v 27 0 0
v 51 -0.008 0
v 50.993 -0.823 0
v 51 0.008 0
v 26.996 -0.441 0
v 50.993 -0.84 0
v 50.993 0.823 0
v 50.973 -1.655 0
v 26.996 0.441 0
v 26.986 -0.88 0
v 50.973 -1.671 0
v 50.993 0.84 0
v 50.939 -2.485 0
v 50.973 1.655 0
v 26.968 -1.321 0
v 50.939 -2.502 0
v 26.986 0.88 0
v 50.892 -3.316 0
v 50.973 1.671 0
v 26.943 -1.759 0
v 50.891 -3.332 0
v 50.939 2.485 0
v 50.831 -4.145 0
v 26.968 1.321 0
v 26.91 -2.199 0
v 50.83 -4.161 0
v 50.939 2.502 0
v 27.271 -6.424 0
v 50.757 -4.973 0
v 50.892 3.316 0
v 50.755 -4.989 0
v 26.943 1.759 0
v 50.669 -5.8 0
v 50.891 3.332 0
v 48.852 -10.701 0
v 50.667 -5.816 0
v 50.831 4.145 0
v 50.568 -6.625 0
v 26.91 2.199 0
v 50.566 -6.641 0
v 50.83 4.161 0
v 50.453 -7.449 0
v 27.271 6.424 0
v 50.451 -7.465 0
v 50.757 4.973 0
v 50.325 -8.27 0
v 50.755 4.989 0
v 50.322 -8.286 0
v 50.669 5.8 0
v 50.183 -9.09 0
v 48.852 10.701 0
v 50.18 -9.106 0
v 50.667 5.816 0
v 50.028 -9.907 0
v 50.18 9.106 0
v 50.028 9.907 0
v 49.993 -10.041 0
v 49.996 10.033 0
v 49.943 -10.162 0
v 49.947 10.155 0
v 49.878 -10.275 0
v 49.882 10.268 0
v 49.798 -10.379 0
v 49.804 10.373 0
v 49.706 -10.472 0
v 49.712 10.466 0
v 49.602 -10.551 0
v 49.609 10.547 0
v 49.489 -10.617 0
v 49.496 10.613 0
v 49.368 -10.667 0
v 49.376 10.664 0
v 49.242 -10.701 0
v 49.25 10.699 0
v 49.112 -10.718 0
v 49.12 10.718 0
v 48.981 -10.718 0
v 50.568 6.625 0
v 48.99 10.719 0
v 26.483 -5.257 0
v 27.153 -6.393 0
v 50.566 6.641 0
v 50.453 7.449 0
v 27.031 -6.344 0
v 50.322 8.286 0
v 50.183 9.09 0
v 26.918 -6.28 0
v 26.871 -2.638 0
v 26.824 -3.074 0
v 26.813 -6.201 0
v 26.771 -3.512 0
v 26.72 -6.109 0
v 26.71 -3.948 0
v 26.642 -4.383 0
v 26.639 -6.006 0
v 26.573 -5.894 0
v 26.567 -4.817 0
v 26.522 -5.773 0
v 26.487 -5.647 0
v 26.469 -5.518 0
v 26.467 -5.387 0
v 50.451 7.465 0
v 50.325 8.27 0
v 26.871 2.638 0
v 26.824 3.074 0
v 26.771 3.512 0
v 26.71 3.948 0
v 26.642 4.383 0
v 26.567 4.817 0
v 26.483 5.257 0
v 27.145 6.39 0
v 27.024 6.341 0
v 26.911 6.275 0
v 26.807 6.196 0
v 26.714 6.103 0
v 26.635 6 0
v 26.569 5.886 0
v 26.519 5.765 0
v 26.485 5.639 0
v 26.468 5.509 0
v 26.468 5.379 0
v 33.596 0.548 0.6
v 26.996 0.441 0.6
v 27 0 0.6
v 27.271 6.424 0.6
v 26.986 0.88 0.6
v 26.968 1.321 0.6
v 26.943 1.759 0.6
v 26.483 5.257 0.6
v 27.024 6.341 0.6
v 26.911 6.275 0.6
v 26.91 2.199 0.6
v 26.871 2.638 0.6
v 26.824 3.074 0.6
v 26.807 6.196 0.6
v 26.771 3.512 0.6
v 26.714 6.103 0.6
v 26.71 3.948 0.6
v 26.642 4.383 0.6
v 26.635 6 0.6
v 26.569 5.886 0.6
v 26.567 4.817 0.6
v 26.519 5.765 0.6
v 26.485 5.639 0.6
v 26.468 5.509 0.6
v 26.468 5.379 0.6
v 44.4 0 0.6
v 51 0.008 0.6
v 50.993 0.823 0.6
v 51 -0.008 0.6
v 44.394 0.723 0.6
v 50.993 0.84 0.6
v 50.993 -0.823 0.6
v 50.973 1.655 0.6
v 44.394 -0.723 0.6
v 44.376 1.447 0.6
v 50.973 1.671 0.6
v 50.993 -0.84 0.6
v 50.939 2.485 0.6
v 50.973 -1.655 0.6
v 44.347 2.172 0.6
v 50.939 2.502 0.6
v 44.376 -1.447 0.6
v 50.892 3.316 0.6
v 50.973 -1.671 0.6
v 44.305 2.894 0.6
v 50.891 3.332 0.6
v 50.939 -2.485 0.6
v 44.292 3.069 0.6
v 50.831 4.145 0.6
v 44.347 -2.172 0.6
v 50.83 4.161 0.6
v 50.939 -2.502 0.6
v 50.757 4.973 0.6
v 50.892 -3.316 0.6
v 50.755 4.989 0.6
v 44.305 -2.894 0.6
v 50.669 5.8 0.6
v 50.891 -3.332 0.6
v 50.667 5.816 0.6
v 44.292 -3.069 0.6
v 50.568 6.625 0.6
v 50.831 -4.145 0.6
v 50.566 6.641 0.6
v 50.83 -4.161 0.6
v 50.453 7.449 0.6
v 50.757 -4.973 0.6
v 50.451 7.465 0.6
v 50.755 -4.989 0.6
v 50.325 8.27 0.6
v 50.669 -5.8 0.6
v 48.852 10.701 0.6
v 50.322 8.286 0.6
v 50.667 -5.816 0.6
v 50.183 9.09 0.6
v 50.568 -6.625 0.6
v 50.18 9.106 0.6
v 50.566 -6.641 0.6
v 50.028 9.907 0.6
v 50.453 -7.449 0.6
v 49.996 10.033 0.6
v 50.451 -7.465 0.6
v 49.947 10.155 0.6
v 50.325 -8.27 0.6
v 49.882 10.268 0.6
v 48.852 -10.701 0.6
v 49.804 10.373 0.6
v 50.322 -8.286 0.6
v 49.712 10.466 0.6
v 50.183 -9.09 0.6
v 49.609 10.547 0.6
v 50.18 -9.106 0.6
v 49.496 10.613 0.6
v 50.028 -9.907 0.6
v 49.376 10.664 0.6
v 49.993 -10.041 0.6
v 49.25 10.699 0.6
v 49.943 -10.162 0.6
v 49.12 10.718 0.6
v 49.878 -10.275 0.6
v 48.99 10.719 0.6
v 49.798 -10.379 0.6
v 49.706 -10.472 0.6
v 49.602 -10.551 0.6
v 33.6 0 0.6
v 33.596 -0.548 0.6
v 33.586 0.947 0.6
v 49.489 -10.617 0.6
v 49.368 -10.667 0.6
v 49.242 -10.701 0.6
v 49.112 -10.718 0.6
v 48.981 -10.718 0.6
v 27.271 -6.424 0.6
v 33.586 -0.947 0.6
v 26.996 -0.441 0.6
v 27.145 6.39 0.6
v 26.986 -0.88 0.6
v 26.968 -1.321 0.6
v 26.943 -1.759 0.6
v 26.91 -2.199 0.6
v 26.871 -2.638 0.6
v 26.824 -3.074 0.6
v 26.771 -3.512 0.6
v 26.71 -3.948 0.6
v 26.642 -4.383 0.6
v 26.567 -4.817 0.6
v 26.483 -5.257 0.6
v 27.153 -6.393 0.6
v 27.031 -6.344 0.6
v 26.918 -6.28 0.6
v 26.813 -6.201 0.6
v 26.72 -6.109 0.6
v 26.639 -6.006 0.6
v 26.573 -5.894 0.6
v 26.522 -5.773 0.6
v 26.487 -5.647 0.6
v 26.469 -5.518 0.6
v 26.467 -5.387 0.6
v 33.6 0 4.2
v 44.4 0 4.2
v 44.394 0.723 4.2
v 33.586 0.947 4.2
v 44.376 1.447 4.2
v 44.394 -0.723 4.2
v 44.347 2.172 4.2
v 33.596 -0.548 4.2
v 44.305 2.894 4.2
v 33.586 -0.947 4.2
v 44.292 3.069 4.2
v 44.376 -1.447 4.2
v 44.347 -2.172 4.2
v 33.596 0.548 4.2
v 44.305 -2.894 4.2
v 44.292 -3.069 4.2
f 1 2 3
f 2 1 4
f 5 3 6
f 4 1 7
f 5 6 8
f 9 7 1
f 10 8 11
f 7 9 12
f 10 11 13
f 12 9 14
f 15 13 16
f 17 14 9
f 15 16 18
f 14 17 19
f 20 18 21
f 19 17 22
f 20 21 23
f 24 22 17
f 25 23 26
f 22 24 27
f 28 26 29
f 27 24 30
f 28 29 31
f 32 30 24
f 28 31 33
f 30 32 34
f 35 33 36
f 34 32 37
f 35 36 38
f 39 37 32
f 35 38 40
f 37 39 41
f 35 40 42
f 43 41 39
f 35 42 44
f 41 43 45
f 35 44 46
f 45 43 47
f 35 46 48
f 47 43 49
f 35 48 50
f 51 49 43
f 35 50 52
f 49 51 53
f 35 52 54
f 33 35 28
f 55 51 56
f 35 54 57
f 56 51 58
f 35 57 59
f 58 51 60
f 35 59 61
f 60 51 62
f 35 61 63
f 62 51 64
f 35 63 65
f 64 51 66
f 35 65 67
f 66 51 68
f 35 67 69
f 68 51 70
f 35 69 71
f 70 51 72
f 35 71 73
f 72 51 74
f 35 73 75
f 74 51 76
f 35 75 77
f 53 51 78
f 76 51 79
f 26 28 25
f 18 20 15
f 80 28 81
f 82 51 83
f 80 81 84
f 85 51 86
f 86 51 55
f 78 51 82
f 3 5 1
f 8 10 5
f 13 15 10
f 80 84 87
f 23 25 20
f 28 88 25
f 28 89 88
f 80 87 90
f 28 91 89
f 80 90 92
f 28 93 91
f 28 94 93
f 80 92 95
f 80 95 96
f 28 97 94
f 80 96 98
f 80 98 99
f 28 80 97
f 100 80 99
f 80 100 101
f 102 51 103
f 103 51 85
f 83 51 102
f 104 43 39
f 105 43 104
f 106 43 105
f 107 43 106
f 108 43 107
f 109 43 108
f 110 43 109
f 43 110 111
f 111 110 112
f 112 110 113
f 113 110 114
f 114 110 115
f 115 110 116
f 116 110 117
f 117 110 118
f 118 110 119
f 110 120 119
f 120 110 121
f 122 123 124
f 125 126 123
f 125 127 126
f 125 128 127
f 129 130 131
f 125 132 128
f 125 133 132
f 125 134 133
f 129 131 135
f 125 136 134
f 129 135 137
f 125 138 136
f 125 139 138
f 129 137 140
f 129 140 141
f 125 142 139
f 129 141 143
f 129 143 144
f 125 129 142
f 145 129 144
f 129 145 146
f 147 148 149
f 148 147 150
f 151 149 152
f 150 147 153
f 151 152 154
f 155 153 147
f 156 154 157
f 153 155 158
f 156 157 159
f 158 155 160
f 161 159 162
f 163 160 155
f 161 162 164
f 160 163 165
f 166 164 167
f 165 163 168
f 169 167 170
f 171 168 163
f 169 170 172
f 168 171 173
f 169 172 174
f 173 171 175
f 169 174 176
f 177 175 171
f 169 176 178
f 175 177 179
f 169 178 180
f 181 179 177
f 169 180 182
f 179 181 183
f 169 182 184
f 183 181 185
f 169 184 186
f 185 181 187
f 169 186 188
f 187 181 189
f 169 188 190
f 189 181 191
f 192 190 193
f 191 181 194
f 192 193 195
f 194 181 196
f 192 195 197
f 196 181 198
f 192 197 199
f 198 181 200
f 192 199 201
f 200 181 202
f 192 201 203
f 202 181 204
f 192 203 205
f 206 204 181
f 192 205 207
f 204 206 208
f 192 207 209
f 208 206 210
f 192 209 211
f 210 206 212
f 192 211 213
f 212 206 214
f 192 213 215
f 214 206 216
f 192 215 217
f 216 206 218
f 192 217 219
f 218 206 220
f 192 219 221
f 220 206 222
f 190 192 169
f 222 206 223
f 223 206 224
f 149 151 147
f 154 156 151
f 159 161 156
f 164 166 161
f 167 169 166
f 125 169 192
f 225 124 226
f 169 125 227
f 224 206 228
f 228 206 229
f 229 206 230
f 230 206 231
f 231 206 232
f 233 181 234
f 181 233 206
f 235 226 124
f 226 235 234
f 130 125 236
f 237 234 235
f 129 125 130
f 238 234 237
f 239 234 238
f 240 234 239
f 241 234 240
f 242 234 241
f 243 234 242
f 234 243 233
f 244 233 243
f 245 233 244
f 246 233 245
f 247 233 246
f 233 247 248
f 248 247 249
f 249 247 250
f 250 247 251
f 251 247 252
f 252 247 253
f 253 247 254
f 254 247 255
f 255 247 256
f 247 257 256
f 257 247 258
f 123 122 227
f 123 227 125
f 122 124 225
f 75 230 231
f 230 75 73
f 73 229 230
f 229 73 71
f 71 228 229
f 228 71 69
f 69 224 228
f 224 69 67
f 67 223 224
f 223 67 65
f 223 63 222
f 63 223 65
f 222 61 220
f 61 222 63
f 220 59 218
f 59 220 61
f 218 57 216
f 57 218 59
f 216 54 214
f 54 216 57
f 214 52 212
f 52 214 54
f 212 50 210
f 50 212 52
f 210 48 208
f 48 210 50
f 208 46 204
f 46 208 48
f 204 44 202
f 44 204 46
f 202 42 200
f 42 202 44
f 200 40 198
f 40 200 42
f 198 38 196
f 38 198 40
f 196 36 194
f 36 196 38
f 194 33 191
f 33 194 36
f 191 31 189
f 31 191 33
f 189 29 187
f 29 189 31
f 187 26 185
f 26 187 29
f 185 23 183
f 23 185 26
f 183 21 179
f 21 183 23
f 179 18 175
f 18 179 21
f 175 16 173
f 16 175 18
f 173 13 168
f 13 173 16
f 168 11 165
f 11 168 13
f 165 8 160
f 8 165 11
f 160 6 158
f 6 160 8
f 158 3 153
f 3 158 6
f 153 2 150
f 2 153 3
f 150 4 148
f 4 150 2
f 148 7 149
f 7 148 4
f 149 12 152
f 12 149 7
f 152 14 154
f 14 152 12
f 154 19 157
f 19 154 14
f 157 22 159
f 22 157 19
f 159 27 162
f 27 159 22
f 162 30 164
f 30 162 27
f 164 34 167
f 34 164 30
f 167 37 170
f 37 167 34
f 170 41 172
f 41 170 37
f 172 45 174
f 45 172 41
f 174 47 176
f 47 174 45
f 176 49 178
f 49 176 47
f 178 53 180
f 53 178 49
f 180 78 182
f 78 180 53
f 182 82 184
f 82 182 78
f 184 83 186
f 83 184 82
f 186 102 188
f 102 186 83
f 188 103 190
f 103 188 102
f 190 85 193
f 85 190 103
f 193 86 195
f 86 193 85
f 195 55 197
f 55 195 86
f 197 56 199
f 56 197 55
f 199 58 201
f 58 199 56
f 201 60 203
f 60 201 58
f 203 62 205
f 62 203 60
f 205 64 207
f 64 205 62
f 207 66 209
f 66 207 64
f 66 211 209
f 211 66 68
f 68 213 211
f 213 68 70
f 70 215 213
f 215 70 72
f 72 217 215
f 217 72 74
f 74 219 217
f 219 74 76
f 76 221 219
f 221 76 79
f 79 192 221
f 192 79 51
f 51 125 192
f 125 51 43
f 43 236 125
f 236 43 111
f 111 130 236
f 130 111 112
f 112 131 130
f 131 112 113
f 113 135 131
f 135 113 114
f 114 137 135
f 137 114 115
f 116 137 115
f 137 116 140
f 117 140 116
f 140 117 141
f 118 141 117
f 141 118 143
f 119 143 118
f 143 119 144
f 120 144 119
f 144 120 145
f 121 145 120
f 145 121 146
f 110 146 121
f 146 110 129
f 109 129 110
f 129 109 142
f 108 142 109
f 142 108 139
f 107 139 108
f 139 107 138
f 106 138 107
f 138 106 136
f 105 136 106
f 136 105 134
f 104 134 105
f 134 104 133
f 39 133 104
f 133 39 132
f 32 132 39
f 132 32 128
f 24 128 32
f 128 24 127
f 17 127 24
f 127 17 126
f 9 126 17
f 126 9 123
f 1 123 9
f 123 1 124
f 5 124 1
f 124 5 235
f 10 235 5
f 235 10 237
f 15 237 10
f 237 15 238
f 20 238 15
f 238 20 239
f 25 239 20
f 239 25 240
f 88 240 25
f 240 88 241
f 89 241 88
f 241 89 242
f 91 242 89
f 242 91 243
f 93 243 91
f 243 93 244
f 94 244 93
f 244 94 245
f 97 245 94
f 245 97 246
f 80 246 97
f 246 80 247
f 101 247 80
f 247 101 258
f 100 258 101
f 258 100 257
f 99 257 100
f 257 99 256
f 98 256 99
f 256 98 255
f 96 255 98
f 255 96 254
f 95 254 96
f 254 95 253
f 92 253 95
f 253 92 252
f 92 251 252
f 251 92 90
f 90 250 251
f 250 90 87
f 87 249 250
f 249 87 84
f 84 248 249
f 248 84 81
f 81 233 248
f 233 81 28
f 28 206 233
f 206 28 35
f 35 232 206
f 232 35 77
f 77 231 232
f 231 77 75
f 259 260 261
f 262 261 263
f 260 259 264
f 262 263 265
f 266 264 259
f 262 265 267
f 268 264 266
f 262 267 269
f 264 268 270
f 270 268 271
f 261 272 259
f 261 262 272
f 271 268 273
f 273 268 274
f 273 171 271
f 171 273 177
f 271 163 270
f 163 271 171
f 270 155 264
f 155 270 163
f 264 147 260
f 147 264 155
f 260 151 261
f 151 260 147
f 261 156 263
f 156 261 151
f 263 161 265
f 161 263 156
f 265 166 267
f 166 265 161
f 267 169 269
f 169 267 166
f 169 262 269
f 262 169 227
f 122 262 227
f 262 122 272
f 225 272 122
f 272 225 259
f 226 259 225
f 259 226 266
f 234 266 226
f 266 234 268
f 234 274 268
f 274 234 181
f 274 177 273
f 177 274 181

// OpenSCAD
// file: parameters.scad
// =============================================================================
// Gen-BD — nightly 2026-10-03 (physics_scorer, honest magpylib watts)
// Clocking 0 deg (magnets N facing S) + D-flat keyed bore + index notch + flip-symmetric braces/bolts.
// Windable 2-piece bobbin; turns = physics_scorer turns_fit; copper only between flanges.
// former_web = 3.60 mm (taller copper vs Gen-BA 2.46) — gap grows with web (honest Bz tradeoff).
// Steel back-iron: two buyable mild-steel discs behind each rotor (score with --back-iron).
// =============================================================================
topology            = "dual_rotor";

// --- Wire / winding (physics_scorer winding-fit) -------------------------------
wire_awg            = 26;
wire_od             = 0.45;     // insulated OD mm (bare 0.405)
fill_realistic      = 0.60;     // insulated-wire area / window, hand-wound layered
turns               = 76;       // = physics_scorer turns_fit (do NOT raise)
coil_former_type    = "bobbin";
coil_core_inset     = 5.60;     // radial copper build: hub = copper boundary inset by this
wind_build_axial    = 0.0;      // nothing proud of the flanges
wind_build_radial   = 0.0;

// --- Bobbin (base + lid) ---------------------------------------------------------
coil_id_r           = 28.00;    // copper boundary sector (over the magnet track)
coil_od_r           = 50.00;
span_deg            = 22.42;    // = pitch - 2*asin((wall+0.85)/coil_id_r) -> >=1.2 mm stator web
former_web          = 3.60;     // copper height between flanges
flange_t            = 0.60;
wall                = 1.00;     // flange lip beyond copper
former_bare_h       = former_web + 2 * flange_t;
coil_envelope_h     = former_bare_h + 2 * wind_build_axial;
tab_w               = 7.0;
tab_len             = 7.0;
tab_h               = former_bare_h / 2;
pin_d               = 1.9;      // 1.75 mm filament locating pin
coil_mount_r        = coil_od_r + 0.2 + 4.0;
lead_y              = 1.6;
lead_slot_w         = 0.9;
lead_groove_d       = 0.6;

// --- Gap -------------------------------------------------------------------------
run_clear           = 0.50;     // rotor face -> flange
gap_spacer_h        = run_clear + wind_build_axial;
m2m                 = coil_envelope_h + 2 * run_clear;

// --- Stator ----------------------------------------------------------------------
coil_stations       = 12;
bay_clear           = 0.25;
stator_thick        = former_bare_h;                        // bobbins flush both faces
stator_od           = 162.0;
shaft_clear_stator  = 14.0;     // stator is static; shaft only

// --- Rotor(s) --------------------------------------------------------------------
magnet_Br           = 1.43;     // N52
halbach_magnetisation = "diametric"; // O5x5 assist magnets MUST be DIAMETRICALLY magnetised (tangential)
rotor_b_same_axis   = true;     // same-index magnets share one axis: N faces S across the gap
large_pocket_d      = 20.3;
small_pocket_d      = 5.3;
pocket_h            = 5.2;
large_n             = 8;
R_large             = 40.0;
R_small_inner       = 24.0;
R_small_mid         = 40.0;
R_small_outer       = 56.0;
carrier_od          = 160.0;
carrier_thick       = 7.5;
hub_h               = 10.0;
hub_od              = 30.0;
rotor_b_offset_deg  = 0.0;      // CLOCKING: magnets directly opposite
shaft_key           = "dflat";
dflat_depth         = 0.5;      // 8 mm shaft with 0.5 mm flat (7.5 across flat)
index_notch_d       = 3.0;

// --- Modular MAX interface (Gen-E family) -----------------------------------------
shaft_bore          = 8.35;
dflat_x             = 4.0 - dflat_depth + (shaft_bore - 8.0) / 2;
bearing_d           = 21.85;
bearing_h           = 7.2;
m3_clear            = 3.5;
bolt_r_inner        = 30.0;
bolt_n_inner        = 4;
bolt_inner_angles   = [22.5, -22.5, 157.5, 202.5];  // between poles, flip-symmetric
flange_bolt_r       = 72.0;
flange_bolt_n       = 6;
brace_r             = 68.0;
brace_d             = 4.3;
brace_n             = 4;
brace_angles        = [45, 135, 225, 315];          // flip-symmetric

spacer_pad_od       = 14.0;
spacer_pad_id       = m3_clear;
endbell_od          = 162.0;
endbell_thick       = 8.0;
endbell_shaft_clear = 10.0;
plate_max_mm        = 410;

$fn = 64;
// main file
// Gen-BD — bobbin BASE (bottom flange + hub). Print x12. Wind 26 AWG x 76 t around the hub
// with the LID glued on (coil_lid.stl). Copper lives ONLY between the flanges (no proud winds).
include <parameters.scad>;
$fn = 48;
module sector_2d(r_in, r_out, ang) {
    polygon([
        for (a = [-ang/2 : ang/24 : ang/2]) [r_in*cos(a), r_in*sin(a)],
        for (a = [ang/2 : -ang/24 : -ang/2]) [r_out*cos(a), r_out*sin(a)]
    ]);
}
module footprint_2d() { offset(r=wall) sector_2d(coil_id_r, coil_od_r, span_deg); }
module hub_2d()       { offset(delta=-coil_core_inset) sector_2d(coil_id_r, coil_od_r, span_deg); }

difference() {
    union() {
        linear_extrude(flange_t) footprint_2d();
        translate([0, 0, flange_t - 0.01]) linear_extrude(former_web + 0.01) hub_2d();
    }
    // (no slot in the base: both leads leave through the lid's grooves on the stator +Z side)
}
